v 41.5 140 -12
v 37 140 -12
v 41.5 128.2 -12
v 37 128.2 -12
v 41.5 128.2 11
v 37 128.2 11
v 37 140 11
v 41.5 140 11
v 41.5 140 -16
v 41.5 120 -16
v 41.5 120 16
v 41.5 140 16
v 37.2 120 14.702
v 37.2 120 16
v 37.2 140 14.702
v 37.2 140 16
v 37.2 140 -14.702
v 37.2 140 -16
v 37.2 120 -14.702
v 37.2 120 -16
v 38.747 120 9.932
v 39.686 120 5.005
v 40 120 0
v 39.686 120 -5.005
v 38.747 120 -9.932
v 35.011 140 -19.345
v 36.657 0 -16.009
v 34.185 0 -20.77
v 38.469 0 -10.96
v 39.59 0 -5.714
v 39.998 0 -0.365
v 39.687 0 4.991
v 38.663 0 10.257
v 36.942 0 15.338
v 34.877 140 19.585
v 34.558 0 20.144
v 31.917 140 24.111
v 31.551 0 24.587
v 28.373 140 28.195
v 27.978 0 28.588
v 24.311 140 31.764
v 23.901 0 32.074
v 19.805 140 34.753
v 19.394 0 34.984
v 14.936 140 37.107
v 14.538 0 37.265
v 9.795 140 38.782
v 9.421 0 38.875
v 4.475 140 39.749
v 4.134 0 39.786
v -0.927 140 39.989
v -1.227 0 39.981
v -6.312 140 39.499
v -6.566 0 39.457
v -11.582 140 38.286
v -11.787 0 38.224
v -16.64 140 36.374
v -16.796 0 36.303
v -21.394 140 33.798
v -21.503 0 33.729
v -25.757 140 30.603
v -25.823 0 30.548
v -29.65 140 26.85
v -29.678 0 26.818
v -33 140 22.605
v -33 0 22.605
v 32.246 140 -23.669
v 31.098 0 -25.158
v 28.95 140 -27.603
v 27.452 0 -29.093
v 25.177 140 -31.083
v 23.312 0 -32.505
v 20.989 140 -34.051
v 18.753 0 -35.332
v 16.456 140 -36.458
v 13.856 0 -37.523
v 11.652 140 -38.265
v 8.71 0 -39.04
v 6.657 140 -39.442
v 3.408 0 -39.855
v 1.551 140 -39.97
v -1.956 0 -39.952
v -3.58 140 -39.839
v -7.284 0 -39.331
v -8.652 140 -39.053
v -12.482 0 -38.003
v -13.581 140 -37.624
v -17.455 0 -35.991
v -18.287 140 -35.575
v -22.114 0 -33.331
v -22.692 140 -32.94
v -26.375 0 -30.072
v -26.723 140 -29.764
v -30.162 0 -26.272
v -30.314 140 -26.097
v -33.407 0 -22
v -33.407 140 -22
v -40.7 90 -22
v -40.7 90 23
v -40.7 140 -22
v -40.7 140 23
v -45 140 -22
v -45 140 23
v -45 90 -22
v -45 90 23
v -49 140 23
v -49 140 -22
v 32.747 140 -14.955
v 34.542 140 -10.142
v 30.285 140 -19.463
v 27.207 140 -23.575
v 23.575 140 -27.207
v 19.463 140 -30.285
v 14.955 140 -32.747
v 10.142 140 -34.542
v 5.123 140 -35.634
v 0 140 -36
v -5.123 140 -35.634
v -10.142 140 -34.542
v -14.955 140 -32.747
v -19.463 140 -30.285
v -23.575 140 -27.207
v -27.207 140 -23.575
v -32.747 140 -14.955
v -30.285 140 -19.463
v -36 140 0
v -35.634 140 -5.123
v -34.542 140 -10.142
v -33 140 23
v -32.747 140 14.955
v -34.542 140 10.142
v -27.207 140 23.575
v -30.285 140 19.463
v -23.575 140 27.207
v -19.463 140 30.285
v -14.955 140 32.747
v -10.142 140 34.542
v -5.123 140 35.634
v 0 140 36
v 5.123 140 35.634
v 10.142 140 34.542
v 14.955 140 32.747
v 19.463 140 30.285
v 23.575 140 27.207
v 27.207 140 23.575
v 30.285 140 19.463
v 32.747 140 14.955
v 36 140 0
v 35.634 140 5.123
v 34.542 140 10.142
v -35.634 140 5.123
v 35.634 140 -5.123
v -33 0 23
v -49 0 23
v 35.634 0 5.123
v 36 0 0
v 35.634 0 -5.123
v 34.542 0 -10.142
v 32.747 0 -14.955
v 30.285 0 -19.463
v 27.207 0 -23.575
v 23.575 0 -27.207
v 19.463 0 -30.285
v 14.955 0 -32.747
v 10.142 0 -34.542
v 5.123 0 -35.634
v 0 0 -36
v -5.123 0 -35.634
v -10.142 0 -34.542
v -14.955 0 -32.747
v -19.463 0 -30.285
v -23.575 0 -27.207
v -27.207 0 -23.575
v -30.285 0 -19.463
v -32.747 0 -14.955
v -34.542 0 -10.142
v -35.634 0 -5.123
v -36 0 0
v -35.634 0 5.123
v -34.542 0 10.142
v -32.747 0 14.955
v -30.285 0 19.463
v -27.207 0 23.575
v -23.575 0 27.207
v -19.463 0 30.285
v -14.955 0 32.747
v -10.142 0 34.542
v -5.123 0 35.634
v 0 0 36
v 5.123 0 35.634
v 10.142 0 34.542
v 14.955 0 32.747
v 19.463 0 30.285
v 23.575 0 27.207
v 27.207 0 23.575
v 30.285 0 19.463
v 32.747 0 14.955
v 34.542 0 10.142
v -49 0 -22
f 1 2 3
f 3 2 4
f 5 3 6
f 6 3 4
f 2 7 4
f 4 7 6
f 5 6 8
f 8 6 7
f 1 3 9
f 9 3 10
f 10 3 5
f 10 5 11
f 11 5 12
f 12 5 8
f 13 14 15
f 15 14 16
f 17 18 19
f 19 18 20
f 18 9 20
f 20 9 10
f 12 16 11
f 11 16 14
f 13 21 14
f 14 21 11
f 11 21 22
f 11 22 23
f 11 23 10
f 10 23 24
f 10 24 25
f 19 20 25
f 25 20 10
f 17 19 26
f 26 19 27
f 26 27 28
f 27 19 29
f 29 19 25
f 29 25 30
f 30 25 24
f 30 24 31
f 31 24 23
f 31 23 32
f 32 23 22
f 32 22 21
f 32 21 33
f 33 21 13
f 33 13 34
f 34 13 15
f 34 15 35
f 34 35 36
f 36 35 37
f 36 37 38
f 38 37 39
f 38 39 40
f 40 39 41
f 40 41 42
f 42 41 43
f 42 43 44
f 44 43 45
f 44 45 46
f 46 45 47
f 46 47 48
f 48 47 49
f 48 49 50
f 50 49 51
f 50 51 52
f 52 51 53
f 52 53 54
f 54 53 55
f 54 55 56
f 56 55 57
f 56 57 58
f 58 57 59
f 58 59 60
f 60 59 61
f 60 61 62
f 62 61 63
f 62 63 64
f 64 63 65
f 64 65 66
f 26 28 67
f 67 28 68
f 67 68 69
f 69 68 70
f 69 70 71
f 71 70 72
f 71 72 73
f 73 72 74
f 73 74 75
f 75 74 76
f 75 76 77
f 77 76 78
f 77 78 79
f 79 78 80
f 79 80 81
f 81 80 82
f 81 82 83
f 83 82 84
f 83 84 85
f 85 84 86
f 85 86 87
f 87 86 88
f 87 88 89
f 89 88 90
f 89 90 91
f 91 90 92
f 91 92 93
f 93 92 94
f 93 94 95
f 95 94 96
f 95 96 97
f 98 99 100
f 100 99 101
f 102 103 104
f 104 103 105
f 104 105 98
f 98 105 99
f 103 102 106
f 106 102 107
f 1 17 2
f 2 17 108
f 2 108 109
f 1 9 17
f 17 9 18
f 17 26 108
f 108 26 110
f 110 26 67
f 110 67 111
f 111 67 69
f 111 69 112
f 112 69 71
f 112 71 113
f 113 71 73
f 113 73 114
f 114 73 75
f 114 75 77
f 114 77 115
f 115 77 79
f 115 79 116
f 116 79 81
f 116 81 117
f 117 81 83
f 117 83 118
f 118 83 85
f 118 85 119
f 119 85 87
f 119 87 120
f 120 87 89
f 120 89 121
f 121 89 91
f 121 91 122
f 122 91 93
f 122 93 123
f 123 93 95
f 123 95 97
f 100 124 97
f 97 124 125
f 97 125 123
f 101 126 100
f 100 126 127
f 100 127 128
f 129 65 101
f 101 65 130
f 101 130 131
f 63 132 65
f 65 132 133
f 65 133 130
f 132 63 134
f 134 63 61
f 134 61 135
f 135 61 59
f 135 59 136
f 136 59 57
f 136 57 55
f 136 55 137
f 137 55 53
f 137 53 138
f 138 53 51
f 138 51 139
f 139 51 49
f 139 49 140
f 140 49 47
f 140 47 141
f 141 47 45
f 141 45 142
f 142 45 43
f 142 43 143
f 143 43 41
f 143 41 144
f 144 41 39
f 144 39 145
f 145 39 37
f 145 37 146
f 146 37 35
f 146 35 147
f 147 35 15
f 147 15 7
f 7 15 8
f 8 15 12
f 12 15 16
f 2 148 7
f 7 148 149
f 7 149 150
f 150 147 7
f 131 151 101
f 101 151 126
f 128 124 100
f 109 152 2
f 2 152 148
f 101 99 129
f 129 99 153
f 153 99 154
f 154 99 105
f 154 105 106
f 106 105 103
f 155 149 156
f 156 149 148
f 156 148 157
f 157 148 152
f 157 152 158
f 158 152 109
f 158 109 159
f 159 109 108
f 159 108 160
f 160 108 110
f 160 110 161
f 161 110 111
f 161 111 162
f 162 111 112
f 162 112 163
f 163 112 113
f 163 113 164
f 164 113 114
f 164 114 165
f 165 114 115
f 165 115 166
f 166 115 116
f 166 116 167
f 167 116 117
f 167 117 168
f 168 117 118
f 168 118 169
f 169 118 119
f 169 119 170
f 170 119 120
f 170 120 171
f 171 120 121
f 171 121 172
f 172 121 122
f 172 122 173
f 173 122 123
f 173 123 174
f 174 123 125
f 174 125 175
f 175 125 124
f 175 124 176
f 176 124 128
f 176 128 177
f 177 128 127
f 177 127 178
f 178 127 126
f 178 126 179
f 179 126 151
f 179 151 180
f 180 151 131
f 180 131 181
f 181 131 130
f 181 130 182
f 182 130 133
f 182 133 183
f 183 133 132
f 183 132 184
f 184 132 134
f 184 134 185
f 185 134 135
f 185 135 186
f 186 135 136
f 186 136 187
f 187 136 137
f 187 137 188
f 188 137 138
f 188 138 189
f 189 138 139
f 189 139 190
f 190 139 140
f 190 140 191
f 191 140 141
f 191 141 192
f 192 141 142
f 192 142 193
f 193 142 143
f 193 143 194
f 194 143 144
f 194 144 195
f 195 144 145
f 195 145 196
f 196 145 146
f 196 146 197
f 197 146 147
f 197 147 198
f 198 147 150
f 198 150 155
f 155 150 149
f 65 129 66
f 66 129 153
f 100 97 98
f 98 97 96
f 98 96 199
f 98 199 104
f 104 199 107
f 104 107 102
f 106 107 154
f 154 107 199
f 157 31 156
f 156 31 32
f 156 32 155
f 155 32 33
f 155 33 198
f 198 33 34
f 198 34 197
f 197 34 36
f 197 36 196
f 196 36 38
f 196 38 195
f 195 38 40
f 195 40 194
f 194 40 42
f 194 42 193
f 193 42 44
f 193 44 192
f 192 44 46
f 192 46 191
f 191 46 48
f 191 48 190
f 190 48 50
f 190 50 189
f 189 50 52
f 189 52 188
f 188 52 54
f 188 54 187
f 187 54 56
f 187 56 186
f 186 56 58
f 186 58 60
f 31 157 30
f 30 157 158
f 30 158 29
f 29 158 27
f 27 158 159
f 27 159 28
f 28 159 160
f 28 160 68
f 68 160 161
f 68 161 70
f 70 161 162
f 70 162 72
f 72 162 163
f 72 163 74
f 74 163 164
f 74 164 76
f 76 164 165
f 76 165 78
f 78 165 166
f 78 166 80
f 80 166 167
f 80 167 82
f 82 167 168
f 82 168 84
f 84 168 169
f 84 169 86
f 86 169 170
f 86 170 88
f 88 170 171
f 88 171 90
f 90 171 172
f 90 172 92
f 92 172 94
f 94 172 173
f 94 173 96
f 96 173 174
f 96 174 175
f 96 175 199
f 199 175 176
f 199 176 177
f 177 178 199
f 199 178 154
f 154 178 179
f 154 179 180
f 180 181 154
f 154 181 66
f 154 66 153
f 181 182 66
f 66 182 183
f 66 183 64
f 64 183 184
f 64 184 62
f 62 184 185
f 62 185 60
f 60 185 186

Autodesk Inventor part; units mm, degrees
ref_plane "YZ Plane" through (0, 0, 0) normal (1, 0, 0) x (0, 1, 0)
ref_plane "XZ Plane" through (0, 0, 0) normal (0, 1, 0) x (-1, 0, 0)
ref_plane "XY Plane" through (0, 0, 0) normal (0, 0, 1) x (1, 0, 0)
sketch "Sketch1" plane through (0, 0, 0) normal (0, 1, 0) x (-1, 0, 0)
  circle A0 centre (0, 0) radius 40
  dimension "d0" = 80
extrude "Extrusion1" add sketch "Sketch1" along normal blind 140
sketch "Sketch2" plane through (0, 140, 0) normal (0, 1, 0) x (1, 0, 0)
  line L0 (-49, -23) -> (-33, -23)
  line L1 (-33, -23) -> (-33, 22)
  line L2 (-33, 22) -> (-49, 22)
  line L3 (-49, 22) -> (-49, -23)
  point P0 (0, 0)
extrude "Extrusion2" add sketch "Sketch2" against normal blind 140
sketch "Sketch3" plane through (0, 140, 0) normal (0, 1, 0) x (1, 0, 0)
  circle A0 centre (0, 0) radius 36
  arc A1 (-33, -22.6053) -> (-33.4066, 22) centre (0, 0) ccw projected
  dimension "d25" = 72
extrude "Extrusion3" cut sketch "Sketch3" against normal blind 140
sketch "Sketch4" plane through (0, 140, 0) normal (0, 1, 0) x (1, 0, 0)
  line L0 (-45, 25) -> (-40.7, 25)
  line L1 (-40.7, 25) -> (-40.7, -27)
  line L2 (-40.7, -27) -> (-45, -27)
  line L3 (-45, -27) -> (-45, 25)
  line L4 (-49, 22) -> (-49, -23) projected
  point P0 (0, 0)
  dimension "d9" = 4.3
  dimension "d10" = 4
extrude "Extrusion4" cut sketch "Sketch4" against normal blind 50
sketch "Sketch5" plane through (0, 140, 0) normal (0, 1, 0) x (1, 0, 0)
  line L0 (37.2, -16) -> (41.5, -16)
  line L1 (41.5, -16) -> (41.5, 16)
  line L2 (41.5, 16) -> (37.2, 16)
  line L3 (37.2, 16) -> (37.2, -16)
  point P0 (0, 0)
  point P1 (39.35, -16)
  dimension "d13" = 4.3
  dimension "d14" = 32
extrude "Extrusion5" add sketch "Sketch5" against normal blind 20
sketch "Sketch6" plane through (0, 140, 0) normal (0, 1, 0) x (1, 0, 0)
  line L0 (37, 12) -> (43.2, 12)
  line L1 (43.2, 12) -> (43.2, -11)
  line L2 (43.2, -11) -> (37, -11)
  line L3 (37, -11) -> (37, 12)
  line L4 (41.5, 16) -> (37.2, 16) projected
  line L5 (37.2, -16) -> (41.5, -16) projected
  circle A0 centre (0, 0) radius 36 projected
  point P0 (40.1, 12)
  point P1 (40.1, -11)
  dimension "d28" = 23
  dimension "d29" = 37
  dimension "d30" = 5
  dimension "d31" = 6.2
extrude "Extrusion6" cut sketch "Sketch6" against normal blind 11.8 contours L0 L1 L2 L3
properties part number "Feeder"
